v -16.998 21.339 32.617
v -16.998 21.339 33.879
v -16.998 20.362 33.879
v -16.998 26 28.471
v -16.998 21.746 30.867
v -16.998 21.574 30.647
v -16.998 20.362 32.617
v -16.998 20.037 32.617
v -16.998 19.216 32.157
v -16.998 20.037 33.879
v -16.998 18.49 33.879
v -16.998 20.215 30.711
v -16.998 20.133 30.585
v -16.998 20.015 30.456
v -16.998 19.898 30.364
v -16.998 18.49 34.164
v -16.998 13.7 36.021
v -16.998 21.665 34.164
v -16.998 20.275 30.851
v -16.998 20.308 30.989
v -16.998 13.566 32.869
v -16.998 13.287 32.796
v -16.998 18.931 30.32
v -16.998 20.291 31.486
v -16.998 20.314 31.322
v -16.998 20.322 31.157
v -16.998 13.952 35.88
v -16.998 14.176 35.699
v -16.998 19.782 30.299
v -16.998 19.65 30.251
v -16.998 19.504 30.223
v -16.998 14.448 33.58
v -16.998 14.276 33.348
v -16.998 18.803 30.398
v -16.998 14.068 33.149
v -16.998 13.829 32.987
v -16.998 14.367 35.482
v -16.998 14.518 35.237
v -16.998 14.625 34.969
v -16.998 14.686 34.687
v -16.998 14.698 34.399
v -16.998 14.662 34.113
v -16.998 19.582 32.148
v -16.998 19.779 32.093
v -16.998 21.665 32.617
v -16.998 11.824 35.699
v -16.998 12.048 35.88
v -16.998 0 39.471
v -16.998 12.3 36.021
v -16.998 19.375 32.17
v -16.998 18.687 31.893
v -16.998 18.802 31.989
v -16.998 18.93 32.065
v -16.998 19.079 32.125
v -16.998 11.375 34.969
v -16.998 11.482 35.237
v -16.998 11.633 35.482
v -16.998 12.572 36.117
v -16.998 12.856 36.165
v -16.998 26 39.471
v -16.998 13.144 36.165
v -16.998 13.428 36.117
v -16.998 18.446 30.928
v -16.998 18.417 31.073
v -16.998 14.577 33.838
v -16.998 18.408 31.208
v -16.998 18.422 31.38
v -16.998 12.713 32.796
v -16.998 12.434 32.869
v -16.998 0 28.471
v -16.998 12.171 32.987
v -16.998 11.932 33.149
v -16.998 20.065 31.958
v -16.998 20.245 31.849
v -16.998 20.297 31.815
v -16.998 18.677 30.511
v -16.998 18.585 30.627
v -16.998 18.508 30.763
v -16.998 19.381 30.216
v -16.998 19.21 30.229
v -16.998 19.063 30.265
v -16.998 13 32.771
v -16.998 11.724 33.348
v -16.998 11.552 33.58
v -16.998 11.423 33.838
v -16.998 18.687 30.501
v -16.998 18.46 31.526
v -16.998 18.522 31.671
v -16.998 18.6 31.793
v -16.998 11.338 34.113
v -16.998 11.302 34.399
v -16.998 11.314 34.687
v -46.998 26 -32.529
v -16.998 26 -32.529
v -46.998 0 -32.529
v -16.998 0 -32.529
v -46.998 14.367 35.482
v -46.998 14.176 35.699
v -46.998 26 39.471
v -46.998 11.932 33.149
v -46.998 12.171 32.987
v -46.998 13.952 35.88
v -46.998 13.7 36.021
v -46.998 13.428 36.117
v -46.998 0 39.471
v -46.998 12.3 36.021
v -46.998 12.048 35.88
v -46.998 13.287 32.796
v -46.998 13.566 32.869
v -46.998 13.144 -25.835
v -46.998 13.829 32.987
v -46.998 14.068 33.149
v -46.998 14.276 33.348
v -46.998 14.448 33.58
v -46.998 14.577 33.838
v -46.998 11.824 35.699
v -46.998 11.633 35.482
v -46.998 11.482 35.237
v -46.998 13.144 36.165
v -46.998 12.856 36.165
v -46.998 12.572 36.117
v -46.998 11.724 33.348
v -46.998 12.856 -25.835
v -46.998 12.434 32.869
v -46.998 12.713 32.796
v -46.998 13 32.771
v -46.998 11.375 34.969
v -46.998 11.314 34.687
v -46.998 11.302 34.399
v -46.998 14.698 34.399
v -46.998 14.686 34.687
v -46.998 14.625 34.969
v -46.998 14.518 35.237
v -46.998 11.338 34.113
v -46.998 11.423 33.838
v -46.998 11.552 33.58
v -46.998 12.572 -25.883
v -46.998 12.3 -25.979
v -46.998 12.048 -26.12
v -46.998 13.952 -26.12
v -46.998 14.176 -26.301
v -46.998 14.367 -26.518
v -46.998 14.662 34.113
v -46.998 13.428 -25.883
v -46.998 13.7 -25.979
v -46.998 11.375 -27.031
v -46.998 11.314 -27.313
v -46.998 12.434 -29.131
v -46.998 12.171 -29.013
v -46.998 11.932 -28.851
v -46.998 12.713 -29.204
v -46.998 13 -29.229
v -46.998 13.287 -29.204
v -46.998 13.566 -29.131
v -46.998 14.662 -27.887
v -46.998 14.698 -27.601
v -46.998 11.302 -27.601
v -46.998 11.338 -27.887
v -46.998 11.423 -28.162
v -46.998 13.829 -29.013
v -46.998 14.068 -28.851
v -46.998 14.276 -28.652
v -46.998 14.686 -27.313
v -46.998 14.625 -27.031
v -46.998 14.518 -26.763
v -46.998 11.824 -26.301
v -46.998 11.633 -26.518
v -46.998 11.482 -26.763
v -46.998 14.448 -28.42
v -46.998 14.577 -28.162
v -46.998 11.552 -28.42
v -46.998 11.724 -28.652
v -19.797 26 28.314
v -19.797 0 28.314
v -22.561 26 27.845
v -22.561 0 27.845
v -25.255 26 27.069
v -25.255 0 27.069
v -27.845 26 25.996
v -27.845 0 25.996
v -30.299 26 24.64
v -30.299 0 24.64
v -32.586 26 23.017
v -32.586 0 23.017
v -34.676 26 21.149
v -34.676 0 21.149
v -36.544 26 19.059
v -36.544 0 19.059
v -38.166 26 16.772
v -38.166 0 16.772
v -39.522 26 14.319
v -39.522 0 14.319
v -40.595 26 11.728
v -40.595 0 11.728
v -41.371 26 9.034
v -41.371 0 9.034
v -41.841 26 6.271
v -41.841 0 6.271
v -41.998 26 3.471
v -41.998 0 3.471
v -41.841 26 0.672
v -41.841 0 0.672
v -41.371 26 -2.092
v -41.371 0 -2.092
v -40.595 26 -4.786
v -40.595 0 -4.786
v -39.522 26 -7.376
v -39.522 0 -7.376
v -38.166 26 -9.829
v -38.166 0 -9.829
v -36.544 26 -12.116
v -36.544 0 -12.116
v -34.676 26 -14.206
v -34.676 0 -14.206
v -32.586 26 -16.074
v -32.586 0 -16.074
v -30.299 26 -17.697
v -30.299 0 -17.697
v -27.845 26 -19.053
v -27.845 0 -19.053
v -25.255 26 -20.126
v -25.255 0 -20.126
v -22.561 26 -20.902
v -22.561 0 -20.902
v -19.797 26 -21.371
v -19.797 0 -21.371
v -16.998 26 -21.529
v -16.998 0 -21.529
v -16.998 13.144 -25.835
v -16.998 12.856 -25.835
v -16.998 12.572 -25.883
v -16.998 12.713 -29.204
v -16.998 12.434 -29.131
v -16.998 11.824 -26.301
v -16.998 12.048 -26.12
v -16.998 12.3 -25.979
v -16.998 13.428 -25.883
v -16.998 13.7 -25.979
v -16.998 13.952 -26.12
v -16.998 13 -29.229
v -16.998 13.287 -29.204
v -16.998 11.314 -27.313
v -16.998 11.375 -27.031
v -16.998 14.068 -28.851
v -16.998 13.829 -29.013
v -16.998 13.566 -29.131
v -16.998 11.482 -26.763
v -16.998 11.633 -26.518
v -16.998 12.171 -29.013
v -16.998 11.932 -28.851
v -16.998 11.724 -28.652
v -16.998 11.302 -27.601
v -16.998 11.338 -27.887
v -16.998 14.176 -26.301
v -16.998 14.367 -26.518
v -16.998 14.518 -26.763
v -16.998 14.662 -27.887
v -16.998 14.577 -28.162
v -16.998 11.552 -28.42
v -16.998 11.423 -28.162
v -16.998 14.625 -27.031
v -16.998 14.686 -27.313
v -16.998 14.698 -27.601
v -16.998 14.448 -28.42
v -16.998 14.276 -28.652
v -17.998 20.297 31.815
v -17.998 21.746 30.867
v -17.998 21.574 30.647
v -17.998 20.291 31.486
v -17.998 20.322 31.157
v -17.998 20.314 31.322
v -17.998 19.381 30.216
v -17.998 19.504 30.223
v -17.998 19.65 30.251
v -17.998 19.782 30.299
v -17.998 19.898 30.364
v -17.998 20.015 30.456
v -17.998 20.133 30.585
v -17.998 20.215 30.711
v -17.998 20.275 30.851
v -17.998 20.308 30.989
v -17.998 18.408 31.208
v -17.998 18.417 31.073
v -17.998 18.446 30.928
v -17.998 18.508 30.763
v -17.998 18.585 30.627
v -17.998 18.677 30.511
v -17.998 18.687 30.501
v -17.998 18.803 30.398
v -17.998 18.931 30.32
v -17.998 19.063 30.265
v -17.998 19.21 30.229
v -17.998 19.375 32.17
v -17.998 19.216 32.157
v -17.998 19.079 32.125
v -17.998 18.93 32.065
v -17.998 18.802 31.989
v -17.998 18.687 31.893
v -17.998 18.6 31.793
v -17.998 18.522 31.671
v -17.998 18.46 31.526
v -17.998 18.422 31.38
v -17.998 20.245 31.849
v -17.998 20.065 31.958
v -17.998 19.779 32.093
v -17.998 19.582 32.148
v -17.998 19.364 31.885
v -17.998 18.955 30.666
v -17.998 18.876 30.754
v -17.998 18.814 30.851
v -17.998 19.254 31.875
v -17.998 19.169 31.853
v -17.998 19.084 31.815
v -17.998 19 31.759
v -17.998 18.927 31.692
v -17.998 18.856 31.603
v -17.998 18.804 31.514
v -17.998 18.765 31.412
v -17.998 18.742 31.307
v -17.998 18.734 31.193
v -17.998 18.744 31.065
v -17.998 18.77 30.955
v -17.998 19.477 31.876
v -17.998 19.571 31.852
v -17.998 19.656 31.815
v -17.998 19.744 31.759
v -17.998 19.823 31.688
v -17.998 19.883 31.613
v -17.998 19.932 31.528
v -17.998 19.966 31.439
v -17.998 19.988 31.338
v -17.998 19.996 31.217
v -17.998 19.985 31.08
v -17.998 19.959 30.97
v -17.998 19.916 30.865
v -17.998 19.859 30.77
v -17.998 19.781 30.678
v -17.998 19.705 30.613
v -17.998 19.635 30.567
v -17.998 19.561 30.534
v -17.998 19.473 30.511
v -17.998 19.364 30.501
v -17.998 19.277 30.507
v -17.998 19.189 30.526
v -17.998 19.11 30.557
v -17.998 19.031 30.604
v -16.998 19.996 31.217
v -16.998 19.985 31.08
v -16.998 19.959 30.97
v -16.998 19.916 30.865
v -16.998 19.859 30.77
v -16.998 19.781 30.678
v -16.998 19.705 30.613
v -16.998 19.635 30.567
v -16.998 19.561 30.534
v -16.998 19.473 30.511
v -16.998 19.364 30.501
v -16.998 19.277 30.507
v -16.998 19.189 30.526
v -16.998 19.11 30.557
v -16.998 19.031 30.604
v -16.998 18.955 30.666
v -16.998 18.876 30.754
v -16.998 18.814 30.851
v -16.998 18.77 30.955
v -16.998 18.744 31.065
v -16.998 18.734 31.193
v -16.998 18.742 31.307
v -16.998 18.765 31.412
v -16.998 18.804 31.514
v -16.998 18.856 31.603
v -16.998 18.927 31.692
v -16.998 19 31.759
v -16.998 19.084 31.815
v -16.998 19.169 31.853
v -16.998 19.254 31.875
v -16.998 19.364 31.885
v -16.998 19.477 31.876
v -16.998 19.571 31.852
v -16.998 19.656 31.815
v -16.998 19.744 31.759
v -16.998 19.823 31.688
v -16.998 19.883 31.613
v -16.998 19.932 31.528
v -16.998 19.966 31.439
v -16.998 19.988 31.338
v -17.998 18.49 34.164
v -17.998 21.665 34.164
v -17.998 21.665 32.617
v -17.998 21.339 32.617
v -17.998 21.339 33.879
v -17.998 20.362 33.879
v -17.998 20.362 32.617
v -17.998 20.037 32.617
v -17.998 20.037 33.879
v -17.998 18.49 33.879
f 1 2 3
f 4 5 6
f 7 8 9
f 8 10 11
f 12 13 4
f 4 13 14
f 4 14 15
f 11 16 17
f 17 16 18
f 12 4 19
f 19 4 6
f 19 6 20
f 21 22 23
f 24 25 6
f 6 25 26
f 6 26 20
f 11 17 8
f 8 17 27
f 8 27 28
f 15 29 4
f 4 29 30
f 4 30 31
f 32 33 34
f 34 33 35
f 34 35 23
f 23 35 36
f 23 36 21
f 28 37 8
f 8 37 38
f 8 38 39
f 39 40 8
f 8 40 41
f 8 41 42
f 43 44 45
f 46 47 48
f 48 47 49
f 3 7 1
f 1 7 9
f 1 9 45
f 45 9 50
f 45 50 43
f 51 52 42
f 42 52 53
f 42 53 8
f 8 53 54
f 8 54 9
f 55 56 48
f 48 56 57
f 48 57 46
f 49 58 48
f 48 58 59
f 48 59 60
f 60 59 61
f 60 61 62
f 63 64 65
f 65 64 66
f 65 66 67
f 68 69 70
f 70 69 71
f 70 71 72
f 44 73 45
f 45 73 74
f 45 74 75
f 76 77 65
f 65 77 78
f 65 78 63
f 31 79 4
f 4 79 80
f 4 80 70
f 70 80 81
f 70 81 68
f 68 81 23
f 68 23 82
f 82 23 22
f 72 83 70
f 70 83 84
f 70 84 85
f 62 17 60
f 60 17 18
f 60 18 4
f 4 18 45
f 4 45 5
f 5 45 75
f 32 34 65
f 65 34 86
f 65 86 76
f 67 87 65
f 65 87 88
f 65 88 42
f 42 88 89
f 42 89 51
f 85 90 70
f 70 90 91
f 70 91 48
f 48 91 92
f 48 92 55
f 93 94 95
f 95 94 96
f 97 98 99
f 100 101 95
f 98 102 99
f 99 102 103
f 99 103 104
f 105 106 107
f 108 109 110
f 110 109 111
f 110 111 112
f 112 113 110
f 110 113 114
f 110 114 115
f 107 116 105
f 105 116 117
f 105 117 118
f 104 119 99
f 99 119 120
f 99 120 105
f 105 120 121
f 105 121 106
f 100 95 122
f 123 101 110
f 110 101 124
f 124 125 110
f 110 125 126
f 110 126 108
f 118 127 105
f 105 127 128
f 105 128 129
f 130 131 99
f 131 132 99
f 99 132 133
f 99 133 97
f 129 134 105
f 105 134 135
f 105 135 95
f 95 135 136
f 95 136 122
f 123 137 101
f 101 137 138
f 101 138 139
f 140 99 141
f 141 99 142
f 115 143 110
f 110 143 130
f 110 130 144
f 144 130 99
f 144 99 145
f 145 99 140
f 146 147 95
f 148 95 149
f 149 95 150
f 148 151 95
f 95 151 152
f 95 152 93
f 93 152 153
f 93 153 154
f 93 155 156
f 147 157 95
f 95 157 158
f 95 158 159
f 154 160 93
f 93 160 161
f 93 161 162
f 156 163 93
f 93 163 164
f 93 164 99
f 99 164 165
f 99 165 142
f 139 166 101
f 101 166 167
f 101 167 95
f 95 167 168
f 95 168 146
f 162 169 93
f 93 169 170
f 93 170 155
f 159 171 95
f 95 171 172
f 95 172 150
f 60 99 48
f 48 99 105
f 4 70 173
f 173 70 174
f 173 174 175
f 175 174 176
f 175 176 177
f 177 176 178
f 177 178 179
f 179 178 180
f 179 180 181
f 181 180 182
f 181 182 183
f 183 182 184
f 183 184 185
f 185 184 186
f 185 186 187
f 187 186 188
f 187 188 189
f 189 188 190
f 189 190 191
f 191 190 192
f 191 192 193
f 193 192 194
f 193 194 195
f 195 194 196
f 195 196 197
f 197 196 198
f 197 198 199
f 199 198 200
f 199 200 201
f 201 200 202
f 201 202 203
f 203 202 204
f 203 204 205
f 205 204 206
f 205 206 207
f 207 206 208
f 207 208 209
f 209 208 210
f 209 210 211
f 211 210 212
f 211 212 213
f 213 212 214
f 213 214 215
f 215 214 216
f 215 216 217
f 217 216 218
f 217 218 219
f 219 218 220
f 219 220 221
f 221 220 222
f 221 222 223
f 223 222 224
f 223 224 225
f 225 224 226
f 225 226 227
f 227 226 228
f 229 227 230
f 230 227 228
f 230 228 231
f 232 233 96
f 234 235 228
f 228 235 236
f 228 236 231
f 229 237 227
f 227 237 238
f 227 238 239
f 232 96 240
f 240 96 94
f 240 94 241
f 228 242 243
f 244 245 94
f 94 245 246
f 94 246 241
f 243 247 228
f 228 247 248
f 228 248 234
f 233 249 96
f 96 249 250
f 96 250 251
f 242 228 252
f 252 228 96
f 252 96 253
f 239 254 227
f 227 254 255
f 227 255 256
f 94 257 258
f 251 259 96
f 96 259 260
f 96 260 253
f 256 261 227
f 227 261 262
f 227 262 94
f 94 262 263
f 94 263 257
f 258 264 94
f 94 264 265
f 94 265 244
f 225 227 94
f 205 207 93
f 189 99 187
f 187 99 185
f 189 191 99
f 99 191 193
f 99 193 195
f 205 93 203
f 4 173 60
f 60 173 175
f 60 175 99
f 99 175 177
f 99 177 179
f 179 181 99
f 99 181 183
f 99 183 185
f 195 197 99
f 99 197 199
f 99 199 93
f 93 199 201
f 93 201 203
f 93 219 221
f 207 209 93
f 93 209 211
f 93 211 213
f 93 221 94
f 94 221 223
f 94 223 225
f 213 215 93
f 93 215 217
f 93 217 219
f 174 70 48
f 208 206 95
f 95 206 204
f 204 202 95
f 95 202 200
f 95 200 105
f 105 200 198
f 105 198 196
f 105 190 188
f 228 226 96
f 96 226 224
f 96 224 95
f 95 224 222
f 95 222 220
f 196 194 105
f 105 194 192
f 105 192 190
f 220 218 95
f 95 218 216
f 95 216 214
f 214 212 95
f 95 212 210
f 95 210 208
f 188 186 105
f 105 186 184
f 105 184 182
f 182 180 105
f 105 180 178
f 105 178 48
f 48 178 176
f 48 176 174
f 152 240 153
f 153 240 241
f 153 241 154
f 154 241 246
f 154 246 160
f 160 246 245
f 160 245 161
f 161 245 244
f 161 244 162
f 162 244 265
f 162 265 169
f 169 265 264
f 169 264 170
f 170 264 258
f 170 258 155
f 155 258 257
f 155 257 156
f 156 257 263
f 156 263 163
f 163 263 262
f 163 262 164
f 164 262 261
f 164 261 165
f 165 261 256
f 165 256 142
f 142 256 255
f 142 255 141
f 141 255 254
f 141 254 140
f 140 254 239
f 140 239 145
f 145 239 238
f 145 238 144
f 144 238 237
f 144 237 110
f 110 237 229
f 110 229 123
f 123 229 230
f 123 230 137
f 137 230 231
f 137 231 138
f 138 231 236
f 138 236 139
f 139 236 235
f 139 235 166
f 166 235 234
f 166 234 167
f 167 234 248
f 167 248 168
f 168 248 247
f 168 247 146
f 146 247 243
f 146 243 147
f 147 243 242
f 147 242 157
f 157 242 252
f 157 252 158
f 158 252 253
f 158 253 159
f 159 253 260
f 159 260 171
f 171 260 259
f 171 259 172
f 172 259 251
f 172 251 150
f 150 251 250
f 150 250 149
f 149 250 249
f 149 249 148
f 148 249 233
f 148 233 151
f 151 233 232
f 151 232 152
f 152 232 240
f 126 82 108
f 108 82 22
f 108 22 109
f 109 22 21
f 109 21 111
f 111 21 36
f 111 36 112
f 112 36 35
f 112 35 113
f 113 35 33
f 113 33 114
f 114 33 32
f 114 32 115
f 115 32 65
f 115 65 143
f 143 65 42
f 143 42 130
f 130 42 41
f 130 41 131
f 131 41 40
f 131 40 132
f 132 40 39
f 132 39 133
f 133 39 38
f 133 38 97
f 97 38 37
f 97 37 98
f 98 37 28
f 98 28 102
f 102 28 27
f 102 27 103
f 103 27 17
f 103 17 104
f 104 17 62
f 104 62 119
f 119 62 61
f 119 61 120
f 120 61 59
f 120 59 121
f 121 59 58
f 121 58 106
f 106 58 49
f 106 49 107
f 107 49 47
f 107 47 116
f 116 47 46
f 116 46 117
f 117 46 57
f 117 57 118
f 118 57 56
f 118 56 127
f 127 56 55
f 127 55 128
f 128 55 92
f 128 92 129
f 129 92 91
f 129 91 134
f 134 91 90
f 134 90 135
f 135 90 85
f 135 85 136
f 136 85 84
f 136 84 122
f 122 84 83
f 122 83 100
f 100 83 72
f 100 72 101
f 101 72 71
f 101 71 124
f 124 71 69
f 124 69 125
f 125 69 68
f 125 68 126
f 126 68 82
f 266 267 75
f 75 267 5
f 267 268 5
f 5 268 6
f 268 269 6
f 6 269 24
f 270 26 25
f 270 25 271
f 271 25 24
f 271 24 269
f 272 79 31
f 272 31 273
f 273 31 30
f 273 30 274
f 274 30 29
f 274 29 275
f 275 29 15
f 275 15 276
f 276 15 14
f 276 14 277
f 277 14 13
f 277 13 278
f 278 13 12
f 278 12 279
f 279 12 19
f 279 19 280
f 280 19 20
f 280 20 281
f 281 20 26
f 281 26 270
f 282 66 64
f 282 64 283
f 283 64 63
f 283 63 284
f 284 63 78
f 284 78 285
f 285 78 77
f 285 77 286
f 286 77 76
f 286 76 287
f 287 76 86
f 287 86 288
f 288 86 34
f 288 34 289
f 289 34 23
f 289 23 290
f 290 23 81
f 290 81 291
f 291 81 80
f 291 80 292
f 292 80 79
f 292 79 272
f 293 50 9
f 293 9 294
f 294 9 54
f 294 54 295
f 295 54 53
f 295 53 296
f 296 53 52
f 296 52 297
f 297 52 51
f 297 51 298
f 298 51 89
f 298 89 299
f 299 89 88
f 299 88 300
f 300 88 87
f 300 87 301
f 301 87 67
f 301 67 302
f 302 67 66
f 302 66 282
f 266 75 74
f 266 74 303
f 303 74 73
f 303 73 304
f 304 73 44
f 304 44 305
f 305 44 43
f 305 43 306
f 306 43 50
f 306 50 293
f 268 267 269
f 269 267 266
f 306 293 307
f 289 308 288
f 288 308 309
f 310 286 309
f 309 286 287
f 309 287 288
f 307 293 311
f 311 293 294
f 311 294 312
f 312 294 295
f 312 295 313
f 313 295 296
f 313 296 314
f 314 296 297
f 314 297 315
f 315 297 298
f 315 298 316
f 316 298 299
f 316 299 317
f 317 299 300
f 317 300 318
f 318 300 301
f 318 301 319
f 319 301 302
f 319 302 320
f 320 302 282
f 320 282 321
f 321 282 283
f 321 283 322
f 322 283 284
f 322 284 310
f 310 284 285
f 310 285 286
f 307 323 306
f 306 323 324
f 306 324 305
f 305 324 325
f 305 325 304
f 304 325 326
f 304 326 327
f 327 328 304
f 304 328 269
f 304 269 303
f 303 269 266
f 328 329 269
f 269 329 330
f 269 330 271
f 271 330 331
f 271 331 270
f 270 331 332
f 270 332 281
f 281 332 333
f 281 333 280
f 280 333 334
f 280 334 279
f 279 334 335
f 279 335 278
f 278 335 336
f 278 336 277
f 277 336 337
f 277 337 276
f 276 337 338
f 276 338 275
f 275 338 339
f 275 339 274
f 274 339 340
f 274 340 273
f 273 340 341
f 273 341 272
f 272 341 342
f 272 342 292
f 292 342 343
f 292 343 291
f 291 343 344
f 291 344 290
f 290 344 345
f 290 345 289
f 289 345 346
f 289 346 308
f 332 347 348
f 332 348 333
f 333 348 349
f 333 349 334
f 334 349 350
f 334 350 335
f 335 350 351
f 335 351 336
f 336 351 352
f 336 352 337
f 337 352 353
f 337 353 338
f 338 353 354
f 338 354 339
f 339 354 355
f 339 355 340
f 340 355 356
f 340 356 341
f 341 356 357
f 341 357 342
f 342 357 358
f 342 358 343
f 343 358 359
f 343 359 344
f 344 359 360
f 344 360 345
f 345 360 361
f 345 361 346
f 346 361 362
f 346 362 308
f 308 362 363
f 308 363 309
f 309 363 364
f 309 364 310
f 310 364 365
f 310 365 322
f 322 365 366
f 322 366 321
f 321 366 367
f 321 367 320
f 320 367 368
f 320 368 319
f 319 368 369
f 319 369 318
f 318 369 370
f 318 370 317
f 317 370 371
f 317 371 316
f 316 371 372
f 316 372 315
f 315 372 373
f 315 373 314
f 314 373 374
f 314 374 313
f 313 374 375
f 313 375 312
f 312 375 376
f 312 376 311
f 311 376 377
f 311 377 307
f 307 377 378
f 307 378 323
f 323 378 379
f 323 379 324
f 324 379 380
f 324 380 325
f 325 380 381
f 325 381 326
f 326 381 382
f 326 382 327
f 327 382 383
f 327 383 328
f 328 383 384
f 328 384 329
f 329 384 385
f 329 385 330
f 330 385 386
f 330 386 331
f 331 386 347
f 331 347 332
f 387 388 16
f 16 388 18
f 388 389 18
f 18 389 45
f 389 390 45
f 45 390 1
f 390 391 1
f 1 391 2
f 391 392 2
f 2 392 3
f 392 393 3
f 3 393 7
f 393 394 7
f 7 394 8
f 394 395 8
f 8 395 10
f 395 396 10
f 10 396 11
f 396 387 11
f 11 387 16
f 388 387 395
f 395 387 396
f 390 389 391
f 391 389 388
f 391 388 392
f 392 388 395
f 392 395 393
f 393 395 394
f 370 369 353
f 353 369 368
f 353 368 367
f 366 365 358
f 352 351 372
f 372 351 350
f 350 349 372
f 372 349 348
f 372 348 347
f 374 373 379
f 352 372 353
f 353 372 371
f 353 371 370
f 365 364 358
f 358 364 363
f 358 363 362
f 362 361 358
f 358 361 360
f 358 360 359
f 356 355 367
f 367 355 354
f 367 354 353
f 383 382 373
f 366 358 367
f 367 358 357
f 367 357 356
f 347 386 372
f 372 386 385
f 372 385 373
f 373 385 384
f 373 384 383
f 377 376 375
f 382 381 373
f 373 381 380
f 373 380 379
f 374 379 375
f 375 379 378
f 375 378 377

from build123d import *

# Parameters (mm, degrees)
BOSS_EXTRUDE1_DEPTH = 26
SKETCH2_R           = 1.7
CUT_EXTRUDE1_DEPTH  = 31
CUT_EXTRUDE2_DEPTH  = 1


with BuildPart() as part:
    # Sketch1 → Boss-Extrude1 (new body)
    with BuildSketch(Plane(origin=(0, 0, 0), x_dir=(1, 0, 0), z_dir=(0, 1, 0))):
        with BuildLine():
            Line((-46.998275301, 32.528571429), (-46.998275301, -39.471428571))
            Line((-46.998275301, -39.471428571), (-16.998275301, -39.471428571))
            Line((-16.998275301, -39.471428571), (-16.998275301, -28.471428571))
            ThreePointArc((-16.998275301, -28.471428571), (-41.998275301, -3.471428571), (-16.998275301, 21.528571429))
            Line((-16.998275301, 21.528571429), (-16.998275301, 32.528571429))
            Line((-16.998275301, 32.528571429), (-46.998275301, 32.528571429))
        make_face()
    extrude(amount=BOSS_EXTRUDE1_DEPTH)

    # Sketch2 → Cut-Extrude1 (cut, through all)
    with BuildSketch(Plane(origin=(-16.998275301, 0, 0), x_dir=(0, 0, -1), z_dir=(1, 0, 0))):
        with Locations((-34.471428571, 13)):
            Circle(SKETCH2_R)
        with Locations((27.528571429, 13)):
            Circle(SKETCH2_R)
    extrude(amount=-CUT_EXTRUDE1_DEPTH, mode=Mode.SUBTRACT)

    # Sketch3 → Cut-Extrude2 (cut)
    with BuildSketch(Plane(origin=(-16.998275301, 0, 0), x_dir=(0, 0, -1), z_dir=(1, 0, 0))):
        Polygon((-34.164231178, 21.664809495), (-32.617436306, 21.664809495), (-32.617436306, 21.33916847), (-33.87929528, 21.33916847), (-33.87929528, 20.362245393), (-32.617436306, 20.362245393), (-32.617436306, 20.036604367), (-33.87929528, 20.036604367), (-33.87929528, 18.489809495), (-34.164231178, 18.489809495), align=None)
        with BuildLine():
            Line((-30.867115793, 21.746219752), (-30.647053694, 21.573858975))
            Line((-30.647053694, 21.573858975), (-31.485960945, 20.291011418))
            add(Edge.make_bspline(
                [(-31.485960945, 20.291011418), (-31.430107908, 20.299913992), (-31.321160245, 20.317279468), (-31.210882608, 20.320144176), (-31.157139832, 20.321540265)],
                knots=[0, 0, 0, 0, 0.000169463, 0.000330556, 0.000330556, 0.000330556, 0.000330556], degree=3))
            add(Edge.make_bspline(
                [(-31.157139832, 20.321540265), (-31.124868872, 20.320685496), (-31.061554556, 20.319008476), (-30.968523034, 20.3057555), (-30.879108327, 20.285127316), (-30.793509908, 20.254936716), (-30.711619139, 20.216383115), (-30.632967755, 20.170173711), (-30.559033768, 20.113925858), (-30.488865205, 20.051092605), (-30.425159193, 19.981499352), (-30.368756629, 19.907656708), (-30.321379468, 19.829641624), (-30.282940267, 19.747493609), (-30.253090842, 19.661339295), (-30.231330621, 19.571288912), (-30.218467705, 19.477280362), (-30.216721009, 19.413346589), (-30.215833742, 19.380870192)],
                knots=[0, 0, 0, 0, 9.6777e-05, 0.000189873, 0.000281356, 0.000371672, 0.000461583, 0.000552553, 0.000644776, 0.000739798, 0.000834778, 0.000927384, 0.001018136, 0.001108046, 0.001198964, 0.001291213, 0.001385568, 0.001482981, 0.001482981, 0.001482981, 0.001482981], degree=3))
            add(Edge.make_bspline(
                [(-30.215833742, 19.380870192), (-30.217124701, 19.336438604), (-30.219665004, 19.249007753), (-30.244977733, 19.121666026), (-30.284311125, 19.00035153), (-30.340533597, 18.887001153), (-30.410367616, 18.781770251), (-30.495528004, 18.68852915), (-30.592994597, 18.60537133), (-30.703200478, 18.535832826), (-30.821803024, 18.479042915), (-30.946400908, 18.438253017), (-31.075784105, 18.413140155), (-31.163599713, 18.409991823), (-31.208021242, 18.408399239)],
                knots=[0, 0, 0, 0, 0.000133147, 0.000262001, 0.000387907, 0.000514768, 0.000640365, 0.000765549, 0.000892346, 0.001023614, 0.001155333, 0.001285865, 0.00141597, 0.001549154, 0.001549154, 0.001549154, 0.001549154], degree=3))
            add(Edge.make_bspline(
                [(-31.208021242, 18.408399239), (-31.250744677, 18.40978554), (-31.335372323, 18.412531559), (-31.459862072, 18.436993517), (-31.579480666, 18.476642103), (-31.693390033, 18.531265056), (-31.798909447, 18.600260421), (-31.893311845, 18.683320489), (-31.976126527, 18.778669789), (-32.045046361, 18.886293533), (-32.09970964, 19.001945137), (-32.140703357, 19.122538129), (-32.164648521, 19.247633112), (-32.167994569, 19.33243386), (-32.169679896, 19.375146034)],
                knots=[0, 0, 0, 0, 0.000128067, 0.000253679, 0.000378981, 0.000505286, 0.000631591, 0.000755981, 0.000881329, 0.001009234, 0.001138109, 0.001264215, 0.001390451, 0.001518558, 0.001518558, 0.001518558, 0.001518558], degree=3))
            add(Edge.make_bspline(
                [(-32.169679896, 19.375146034), (-32.168608156, 19.40784362), (-32.166419869, 19.474605844), (-32.151140508, 19.57571964), (-32.126588873, 19.679180265), (-32.099093149, 19.76695014), (-32.070041346, 19.838851664), (-32.045863685, 19.896821259), (-32.015770131, 19.956475947), (-31.983681421, 20.019861316), (-31.946709119, 20.085343816), (-31.906508494, 20.154017859), (-31.861968096, 20.224791265), (-31.830744092, 20.272819213), (-31.814782059, 20.297371595)],
                knots=[0, 0, 0, 0, 9.8079e-05, 0.000200258, 0.00030609, 0.000416919, 0.000475736, 0.000538705, 0.000605266, 0.000676095, 0.000751832, 0.000830806, 0.000914808, 0.001002664, 0.001002664, 0.001002664, 0.001002664], degree=3))
            Line((-31.814782059, 20.297371595), (-30.867115793, 21.746219752))
        make_face()
        with BuildLine():
            add(Edge.make_bspline(
                [(-31.216925489, 19.995899239), (-31.24111118, 19.995184076), (-31.288563308, 19.993780933), (-31.358094863, 19.985856379), (-31.423723348, 19.970840263), (-31.48620269, 19.95142058), (-31.544865998, 19.924964542), (-31.600440512, 19.893262694), (-31.652286601, 19.855281097), (-31.700151178, 19.812404161), (-31.743525509, 19.765416612), (-31.780883963, 19.71510002), (-31.813107522, 19.662653711), (-31.839307545, 19.607642956), (-31.859709233, 19.550087877), (-31.874466867, 19.490253426), (-31.882679911, 19.427738302), (-31.884046278, 19.385345247), (-31.884743998, 19.363697717)],
                knots=[0, 0, 0, 0, 7.2576e-05, 0.000142393, 0.000209516, 0.000274284, 0.000338345, 0.000402166, 0.000465901, 0.000530762, 0.000594681, 0.000657393, 0.000718477, 0.000779073, 0.000839825, 0.000901374, 0.000963619, 0.001028571, 0.001028571, 0.001028571, 0.001028571], degree=3))
            add(Edge.make_bspline(
                [(-31.884743998, 19.363697717), (-31.884175799, 19.342243806), (-31.883061645, 19.300175882), (-31.872944897, 19.238182483), (-31.857491644, 19.178524316), (-31.834504285, 19.121508938), (-31.807084179, 19.066267278), (-31.770884349, 19.014800269), (-31.730773408, 18.963982062), (-31.68282734, 18.917716442), (-31.631371146, 18.874666504), (-31.576397198, 18.837037988), (-31.519102092, 18.80484696), (-31.458712302, 18.779618321), (-31.396084625, 18.758913432), (-31.330697265, 18.744343376), (-31.262504746, 18.736106042), (-31.216311274, 18.734737895), (-31.192756819, 18.734040265)],
                knots=[0, 0, 0, 0, 6.4316e-05, 0.000126115, 0.000187979, 0.000248804, 0.000310245, 0.000372516, 0.000437181, 0.000504193, 0.000571946, 0.000638278, 0.00070376, 0.000768733, 0.000834302, 0.000901425, 0.000969348, 0.001040017, 0.001040017, 0.001040017, 0.001040017], degree=3))
            add(Edge.make_bspline(
                [(-31.192756819, 18.734040265), (-31.169202402, 18.734737949), (-31.123009006, 18.736106204), (-31.054815938, 18.744342761), (-30.989430606, 18.758915691), (-30.926795559, 18.779610133), (-30.866432975, 18.804877336), (-30.809187978, 18.83683772), (-30.754733922, 18.874897913), (-30.703243949, 18.917642872), (-30.655497448, 18.964245388), (-30.614424488, 19.014346636), (-30.579333269, 19.066683241), (-30.550817971, 19.121291327), (-30.528083799, 19.178558791), (-30.512552183, 19.238173248), (-30.502456328, 19.3001783), (-30.501339303, 19.342244623), (-30.500769639, 19.363697717)],
                knots=[0, 0, 0, 0, 7.067e-05, 0.000138593, 0.000205716, 0.000271284, 0.000336258, 0.00040174, 0.000467548, 0.000535301, 0.000602313, 0.00066738, 0.000729296, 0.000791029, 0.000851854, 0.000913718, 0.000975517, 0.001039833, 0.001039833, 0.001039833, 0.001039833], degree=3))
            add(Edge.make_bspline(
                [(-30.500769639, 19.363697717), (-30.501268834, 19.385373487), (-30.502248592, 19.427915974), (-30.513330193, 19.490225471), (-30.52869938, 19.550391855), (-30.551906718, 19.608037305), (-30.582057489, 19.662933151), (-30.618779885, 19.715361265), (-30.661270923, 19.765705799), (-30.710317034, 19.812524596), (-30.763707476, 19.85501674), (-30.820114642, 19.893405283), (-30.879889589, 19.92466945), (-30.941953816, 19.951510565), (-31.007054871, 19.970532437), (-31.074481667, 19.985903262), (-31.144873114, 19.993714686), (-31.192741951, 19.995166019), (-31.216925489, 19.995899239)],
                knots=[0, 0, 0, 0, 6.4952e-05, 0.000127479, 0.000189343, 0.000250994, 0.000313327, 0.000376843, 0.000442725, 0.000510648, 0.000579881, 0.000647266, 0.000714983, 0.000781961, 0.000849765, 0.00091813, 0.000989211, 0.001061786, 0.001061786, 0.001061786, 0.001061786], degree=3))
        make_face(mode=Mode.SUBTRACT)
    extrude(amount=-CUT_EXTRUDE2_DEPTH, mode=Mode.SUBTRACT)


solid = part.part
